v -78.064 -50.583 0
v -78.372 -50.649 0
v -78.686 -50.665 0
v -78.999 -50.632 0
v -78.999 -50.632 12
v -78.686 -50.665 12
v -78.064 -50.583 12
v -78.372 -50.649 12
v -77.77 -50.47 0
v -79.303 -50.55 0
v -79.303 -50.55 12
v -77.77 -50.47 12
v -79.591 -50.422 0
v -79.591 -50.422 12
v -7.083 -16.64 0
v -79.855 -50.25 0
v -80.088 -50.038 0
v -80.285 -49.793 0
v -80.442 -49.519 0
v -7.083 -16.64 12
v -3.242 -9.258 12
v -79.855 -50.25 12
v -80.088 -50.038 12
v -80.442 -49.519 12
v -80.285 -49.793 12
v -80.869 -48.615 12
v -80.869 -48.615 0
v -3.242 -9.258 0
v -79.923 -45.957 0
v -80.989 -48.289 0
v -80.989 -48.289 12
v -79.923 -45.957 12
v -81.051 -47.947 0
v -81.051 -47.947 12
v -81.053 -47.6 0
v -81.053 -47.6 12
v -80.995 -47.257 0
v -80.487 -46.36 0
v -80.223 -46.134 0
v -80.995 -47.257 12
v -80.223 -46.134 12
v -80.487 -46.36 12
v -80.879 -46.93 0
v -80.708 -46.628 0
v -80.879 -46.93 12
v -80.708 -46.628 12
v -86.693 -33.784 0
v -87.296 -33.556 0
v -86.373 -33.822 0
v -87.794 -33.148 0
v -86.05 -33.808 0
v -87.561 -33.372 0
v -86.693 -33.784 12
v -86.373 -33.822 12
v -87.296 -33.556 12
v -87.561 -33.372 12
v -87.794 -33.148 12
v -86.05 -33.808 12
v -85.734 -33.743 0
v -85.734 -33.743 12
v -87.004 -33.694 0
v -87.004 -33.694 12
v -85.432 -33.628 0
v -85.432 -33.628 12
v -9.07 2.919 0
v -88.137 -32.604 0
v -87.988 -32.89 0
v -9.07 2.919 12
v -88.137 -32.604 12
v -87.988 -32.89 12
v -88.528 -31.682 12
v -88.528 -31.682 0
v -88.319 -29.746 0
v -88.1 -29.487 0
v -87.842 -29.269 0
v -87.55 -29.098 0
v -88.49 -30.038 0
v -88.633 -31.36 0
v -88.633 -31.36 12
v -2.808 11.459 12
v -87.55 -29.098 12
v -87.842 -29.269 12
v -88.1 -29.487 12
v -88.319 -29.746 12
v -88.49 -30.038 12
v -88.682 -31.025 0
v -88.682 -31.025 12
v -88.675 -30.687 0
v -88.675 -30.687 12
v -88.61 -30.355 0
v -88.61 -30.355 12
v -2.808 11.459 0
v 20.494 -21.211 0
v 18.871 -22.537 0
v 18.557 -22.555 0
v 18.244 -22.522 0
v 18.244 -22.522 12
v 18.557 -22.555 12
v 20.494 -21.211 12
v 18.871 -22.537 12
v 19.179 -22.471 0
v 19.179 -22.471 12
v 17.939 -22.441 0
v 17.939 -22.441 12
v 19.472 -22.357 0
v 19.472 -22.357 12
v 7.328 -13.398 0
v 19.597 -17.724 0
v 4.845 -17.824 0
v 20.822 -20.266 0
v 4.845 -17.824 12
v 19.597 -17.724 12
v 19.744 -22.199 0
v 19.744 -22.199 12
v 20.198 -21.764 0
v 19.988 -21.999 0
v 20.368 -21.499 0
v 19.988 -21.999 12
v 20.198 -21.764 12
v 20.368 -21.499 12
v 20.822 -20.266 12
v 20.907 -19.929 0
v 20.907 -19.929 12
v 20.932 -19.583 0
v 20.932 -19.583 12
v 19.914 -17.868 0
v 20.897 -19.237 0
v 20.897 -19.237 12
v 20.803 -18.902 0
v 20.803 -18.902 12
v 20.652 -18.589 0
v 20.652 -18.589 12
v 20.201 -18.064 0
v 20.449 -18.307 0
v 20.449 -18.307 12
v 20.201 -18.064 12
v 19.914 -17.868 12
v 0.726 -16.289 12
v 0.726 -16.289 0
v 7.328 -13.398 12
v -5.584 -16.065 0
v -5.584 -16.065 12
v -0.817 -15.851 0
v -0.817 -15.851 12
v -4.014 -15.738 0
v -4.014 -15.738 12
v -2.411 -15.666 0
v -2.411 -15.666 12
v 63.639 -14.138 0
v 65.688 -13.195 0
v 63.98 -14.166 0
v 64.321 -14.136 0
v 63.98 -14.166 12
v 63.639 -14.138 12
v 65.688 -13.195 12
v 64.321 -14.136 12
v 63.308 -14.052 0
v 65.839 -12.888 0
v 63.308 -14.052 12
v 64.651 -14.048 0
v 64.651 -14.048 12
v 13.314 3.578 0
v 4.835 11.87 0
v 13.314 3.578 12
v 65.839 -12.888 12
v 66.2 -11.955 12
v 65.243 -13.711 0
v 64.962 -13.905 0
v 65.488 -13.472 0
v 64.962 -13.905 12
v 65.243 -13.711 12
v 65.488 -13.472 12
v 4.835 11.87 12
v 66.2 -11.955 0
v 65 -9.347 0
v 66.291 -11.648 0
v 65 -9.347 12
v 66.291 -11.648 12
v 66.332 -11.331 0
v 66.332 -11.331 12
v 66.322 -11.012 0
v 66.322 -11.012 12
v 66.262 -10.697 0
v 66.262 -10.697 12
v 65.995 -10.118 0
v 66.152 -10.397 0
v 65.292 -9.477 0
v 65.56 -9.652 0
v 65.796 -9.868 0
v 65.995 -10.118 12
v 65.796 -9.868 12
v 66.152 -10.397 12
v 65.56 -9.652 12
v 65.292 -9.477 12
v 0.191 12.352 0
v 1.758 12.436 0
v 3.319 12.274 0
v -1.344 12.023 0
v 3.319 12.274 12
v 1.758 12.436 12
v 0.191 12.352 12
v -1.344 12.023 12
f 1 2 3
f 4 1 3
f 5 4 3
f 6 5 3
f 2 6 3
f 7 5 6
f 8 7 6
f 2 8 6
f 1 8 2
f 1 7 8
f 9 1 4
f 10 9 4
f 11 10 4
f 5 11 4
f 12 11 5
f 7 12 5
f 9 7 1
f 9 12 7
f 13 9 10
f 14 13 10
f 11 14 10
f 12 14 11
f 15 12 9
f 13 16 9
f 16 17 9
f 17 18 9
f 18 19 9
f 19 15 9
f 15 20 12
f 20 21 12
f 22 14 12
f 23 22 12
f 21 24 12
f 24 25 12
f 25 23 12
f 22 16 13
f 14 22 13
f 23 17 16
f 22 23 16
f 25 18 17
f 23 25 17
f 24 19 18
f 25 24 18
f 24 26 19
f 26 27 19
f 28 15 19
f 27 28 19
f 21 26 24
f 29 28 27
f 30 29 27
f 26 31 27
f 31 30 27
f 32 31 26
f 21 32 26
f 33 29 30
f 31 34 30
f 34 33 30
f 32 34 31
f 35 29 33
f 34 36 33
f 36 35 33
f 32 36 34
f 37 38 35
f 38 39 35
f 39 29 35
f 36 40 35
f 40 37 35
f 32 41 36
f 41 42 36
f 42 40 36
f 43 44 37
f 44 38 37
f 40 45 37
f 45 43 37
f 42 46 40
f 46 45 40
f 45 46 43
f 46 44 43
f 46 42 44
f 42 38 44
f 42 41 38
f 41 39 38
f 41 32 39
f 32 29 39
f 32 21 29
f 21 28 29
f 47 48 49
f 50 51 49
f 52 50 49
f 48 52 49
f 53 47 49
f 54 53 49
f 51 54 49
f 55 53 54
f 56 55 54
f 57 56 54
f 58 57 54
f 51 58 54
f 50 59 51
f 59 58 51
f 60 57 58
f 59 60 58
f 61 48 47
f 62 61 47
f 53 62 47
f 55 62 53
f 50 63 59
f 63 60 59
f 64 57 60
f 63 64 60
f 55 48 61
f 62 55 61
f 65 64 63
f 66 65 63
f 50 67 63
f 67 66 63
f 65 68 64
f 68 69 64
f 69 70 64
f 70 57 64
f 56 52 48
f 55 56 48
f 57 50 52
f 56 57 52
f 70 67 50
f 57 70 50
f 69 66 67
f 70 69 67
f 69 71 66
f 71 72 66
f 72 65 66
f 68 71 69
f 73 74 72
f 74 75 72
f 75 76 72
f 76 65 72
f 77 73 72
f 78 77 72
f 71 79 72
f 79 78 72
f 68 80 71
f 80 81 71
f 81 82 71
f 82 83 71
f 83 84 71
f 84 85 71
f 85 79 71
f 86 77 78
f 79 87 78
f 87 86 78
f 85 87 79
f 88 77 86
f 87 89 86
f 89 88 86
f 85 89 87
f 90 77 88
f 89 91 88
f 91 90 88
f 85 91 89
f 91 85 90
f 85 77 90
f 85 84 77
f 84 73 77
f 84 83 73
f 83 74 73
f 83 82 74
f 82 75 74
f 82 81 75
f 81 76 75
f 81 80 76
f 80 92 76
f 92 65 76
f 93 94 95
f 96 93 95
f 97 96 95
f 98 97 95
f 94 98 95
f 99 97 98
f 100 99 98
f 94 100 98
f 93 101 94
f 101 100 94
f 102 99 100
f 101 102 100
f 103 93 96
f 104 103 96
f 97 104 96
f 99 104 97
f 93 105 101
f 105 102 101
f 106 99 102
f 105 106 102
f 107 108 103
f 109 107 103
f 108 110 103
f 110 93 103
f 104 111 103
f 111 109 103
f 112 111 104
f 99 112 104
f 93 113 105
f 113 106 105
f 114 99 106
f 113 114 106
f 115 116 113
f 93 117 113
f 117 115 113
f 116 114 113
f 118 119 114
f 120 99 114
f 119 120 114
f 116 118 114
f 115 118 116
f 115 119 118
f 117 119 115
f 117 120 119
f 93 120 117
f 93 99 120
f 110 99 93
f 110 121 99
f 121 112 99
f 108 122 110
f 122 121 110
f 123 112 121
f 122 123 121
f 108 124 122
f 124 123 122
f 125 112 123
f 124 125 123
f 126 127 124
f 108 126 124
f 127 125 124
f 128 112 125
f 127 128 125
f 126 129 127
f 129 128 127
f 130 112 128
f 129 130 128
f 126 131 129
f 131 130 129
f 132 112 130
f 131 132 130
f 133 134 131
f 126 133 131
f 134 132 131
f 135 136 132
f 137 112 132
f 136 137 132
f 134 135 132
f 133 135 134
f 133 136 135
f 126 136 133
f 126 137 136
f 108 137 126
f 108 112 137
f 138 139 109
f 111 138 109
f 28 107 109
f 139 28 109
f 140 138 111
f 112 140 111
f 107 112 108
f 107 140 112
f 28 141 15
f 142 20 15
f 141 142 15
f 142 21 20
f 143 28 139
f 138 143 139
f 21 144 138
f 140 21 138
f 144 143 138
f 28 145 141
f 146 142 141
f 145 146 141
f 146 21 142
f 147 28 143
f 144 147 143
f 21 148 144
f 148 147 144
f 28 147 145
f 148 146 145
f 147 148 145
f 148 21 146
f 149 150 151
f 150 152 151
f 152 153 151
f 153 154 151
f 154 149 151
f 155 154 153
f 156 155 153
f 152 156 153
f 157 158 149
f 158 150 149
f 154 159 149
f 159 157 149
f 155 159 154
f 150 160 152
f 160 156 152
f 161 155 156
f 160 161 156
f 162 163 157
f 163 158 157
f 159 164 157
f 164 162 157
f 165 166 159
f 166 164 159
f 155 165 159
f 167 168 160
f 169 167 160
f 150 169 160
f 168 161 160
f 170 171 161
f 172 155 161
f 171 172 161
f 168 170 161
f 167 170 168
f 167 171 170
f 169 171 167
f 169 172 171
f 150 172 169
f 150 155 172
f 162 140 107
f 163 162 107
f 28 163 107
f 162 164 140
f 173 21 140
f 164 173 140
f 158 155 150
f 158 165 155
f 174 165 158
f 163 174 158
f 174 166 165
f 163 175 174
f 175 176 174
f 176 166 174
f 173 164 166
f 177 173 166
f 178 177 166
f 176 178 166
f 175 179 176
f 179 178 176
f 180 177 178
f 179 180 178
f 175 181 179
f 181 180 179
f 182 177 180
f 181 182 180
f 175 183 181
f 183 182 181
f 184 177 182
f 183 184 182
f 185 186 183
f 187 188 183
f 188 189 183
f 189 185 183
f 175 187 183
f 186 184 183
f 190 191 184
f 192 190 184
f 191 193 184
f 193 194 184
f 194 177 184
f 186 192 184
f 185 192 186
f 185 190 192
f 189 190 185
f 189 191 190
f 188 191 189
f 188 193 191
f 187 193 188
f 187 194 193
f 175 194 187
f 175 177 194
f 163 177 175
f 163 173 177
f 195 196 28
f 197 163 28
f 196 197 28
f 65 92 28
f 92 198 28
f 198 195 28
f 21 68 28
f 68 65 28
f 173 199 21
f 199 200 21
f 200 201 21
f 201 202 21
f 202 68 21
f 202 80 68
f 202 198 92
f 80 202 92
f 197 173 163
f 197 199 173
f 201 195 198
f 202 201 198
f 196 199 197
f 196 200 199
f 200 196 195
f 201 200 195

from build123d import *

# Parameters (mm, degrees)
EXTRUDE_1_DEPTH = 12
FILLET_1_R      = 10
FILLET_2_R      = 10
FILLET_5_R      = 2
FILLET_6_R      = 2


with BuildPart() as part:
    # 草圖1 → 填料-伸長1 (new body)
    with BuildSketch(Plane.XY):
        Polygon((-89.273265788, -29.922645798), (0.928558352, 13.247145977), (66.944140174, -10.032522336), (65.138238425, -14.697469577), (13.313992743, 3.577780247), (7.327792319, -13.397655079), (21.473988424, -18.386155432), (19.835061436, -23.109984484), (4.845229239, -17.823985149), (-3.252616127, -14.806615195), (-79.583485532, -51.337891248), (-81.717667186, -46.81616648), (-3.242080184, -9.258447635), (-9.070002074, 2.918798623), (-87.320597555, -34.531241278), align=None)
    extrude(amount=EXTRUDE_1_DEPTH)

    # 圓角1
    fillet_1_edges = [part.edges().sort_by_distance(p)[0] for p in [
        (0.928558352, 13.247145977, 6),
    ]]
    fillet(fillet_1_edges, radius=FILLET_1_R)

    # 圓角2
    fillet_2_edges = [part.edges().sort_by_distance(p)[0] for p in [
        (-3.252616127, -14.806615195, 6),
    ]]
    fillet(fillet_2_edges, radius=FILLET_2_R)

    # 圓角5
    fillet_5_edges = [part.edges().sort_by_distance(p)[0] for p in [
        (65.138238425, -14.697469577, 6),
        (21.473988424, -18.386155432, 6),
        (19.835061436, -23.109984484, 6),
        (66.944140174, -10.032522336, 6),
    ]]
    fillet(fillet_5_edges, radius=FILLET_5_R)

    # 圓角6
    fillet_6_edges = [part.edges().sort_by_distance(p)[0] for p in [
        (-79.583485532, -51.337891248, 6),
        (-81.717667186, -46.81616648, 6),
        (-87.320597555, -34.531241278, 6),
        (-89.273265788, -29.922645798, 6),
    ]]
    fillet(fillet_6_edges, radius=FILLET_6_R)


solid = part.part
